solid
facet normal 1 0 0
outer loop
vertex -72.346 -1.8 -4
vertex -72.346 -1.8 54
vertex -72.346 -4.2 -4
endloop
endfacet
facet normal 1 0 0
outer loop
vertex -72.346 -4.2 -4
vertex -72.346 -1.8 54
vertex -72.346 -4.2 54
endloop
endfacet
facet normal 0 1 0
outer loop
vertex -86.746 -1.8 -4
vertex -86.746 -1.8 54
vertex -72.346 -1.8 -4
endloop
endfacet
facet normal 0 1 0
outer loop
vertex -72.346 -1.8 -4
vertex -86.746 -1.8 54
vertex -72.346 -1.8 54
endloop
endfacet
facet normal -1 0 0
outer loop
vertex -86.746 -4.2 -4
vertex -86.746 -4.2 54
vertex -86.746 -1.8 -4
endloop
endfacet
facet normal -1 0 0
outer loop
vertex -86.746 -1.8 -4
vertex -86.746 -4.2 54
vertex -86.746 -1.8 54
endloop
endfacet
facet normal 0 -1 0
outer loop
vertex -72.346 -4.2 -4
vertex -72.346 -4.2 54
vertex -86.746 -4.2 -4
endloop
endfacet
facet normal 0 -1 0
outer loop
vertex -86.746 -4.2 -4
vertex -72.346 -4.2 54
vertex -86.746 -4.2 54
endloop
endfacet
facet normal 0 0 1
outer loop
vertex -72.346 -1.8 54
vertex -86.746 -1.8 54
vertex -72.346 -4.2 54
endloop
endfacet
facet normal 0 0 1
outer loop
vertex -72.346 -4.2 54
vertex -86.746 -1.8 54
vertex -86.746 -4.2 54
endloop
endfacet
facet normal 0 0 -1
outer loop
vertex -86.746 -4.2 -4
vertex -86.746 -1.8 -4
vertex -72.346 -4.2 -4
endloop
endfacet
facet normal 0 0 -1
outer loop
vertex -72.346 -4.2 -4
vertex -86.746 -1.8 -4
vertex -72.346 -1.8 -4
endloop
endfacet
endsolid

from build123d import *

# Parameters (mm, degrees)
SKETCH1_W               = 14.8
SKETCH1_H               = 2.8
BOSS_EXTRUDE1_DEPTH     = 54
CUT_EXTRUDE1_DEPTH      = 103.444717826
CUT_EXTRUDE1_DEPTH_BACK = 103.444717826
SKETCH2_W               = 14.8
SKETCH2_H               = 2.8
SKETCH2_W_2             = 14.4
SKETCH2_H_2             = 2.4
SKETCH3_W               = 14.4
SKETCH3_H               = 2.4
BOSS_EXTRUDE2_DEPTH     = 4


with BuildPart() as part:
    # Sketch1 → Boss-Extrude1 (new body)
    with BuildSketch(Plane.XY):
        with Locations((-79.545731411, -3)):
            Rectangle(SKETCH1_W, SKETCH1_H)
    extrude(amount=BOSS_EXTRUDE1_DEPTH)

    # Sketch2 → Cut-Extrude1 (cut, two sides: drawn at the far end of the back side and taken through both)
    with BuildSketch(Plane(origin=(0, 0, 0), x_dir=(-1, 0, 0), z_dir=(0, 0, -1)).offset(-CUT_EXTRUDE1_DEPTH_BACK)):
        with Locations((79.545731411, -3)):
            Rectangle(SKETCH2_W, SKETCH2_H)
        with Locations((79.545731411, -3)):
            Rectangle(SKETCH2_W_2, SKETCH2_H_2, mode=Mode.SUBTRACT)
    extrude(amount=CUT_EXTRUDE1_DEPTH + CUT_EXTRUDE1_DEPTH_BACK, mode=Mode.SUBTRACT)

    # Sketch3 → Boss-Extrude2 (add)
    with BuildSketch(Plane(origin=(0, 0, 0), x_dir=(-1, 0, 0), z_dir=(0, 0, -1))):
        with Locations((79.545731411, -3)):
            Rectangle(SKETCH3_W, SKETCH3_H)
    extrude(amount=BOSS_EXTRUDE2_DEPTH)


solid = part.part
